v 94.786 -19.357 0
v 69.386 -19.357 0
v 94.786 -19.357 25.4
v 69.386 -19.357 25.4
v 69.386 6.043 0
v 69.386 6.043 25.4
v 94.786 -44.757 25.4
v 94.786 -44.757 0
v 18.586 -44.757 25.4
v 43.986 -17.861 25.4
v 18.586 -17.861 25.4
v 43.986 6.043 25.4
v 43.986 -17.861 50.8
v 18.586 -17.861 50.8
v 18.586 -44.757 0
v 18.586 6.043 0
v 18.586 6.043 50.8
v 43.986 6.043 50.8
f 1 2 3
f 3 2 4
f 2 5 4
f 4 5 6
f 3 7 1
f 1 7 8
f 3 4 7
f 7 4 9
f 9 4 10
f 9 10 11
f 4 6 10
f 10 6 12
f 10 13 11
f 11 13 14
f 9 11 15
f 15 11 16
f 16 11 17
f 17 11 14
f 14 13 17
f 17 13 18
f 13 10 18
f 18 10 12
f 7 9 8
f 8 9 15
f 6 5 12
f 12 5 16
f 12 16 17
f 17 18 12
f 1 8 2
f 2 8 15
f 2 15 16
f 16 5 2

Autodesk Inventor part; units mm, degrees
ref_plane "YZ Plane" through (0, 0, 0) normal (1, 0, 0) x (0, 1, 0)
ref_plane "XZ Plane" through (0, 0, 0) normal (0, 1, 0) x (-1, 0, 0)
ref_plane "XY Plane" through (0, 0, 0) normal (0, 0, 1) x (1, 0, 0)
sketch "Sketch1" plane through (0, 0, 0) normal (0, 0, 1) x (1, 0, 0)
  line L0 (18.5864, 6.043) -> (94.7864, 6.043)
  line L1 (94.7864, 6.043) -> (94.7864, -44.757)
  line L2 (94.7864, -44.757) -> (18.5864, -44.757)
  line L3 (18.5864, -44.757) -> (18.5864, 6.043)
  point P0 (0, 0)
  dimension "d0" = 76.2
  dimension "d1" = 50.8
extrude "Extrusion1" add sketch "Sketch1" along normal blind 50.8
sketch "Sketch2" plane through (94.7864, -44.757, 0) normal (1, 0, 0) x (0, 0, -1)
  line L0 (0, 50.8) -> (-50.8, 50.8) projected
  line L1 (0, 0) -> (-50.8, 0) projected
  line L2 (-50.8, 50.8) -> (-25.4, 50.8)
  line L3 (-25.4, 50.8) -> (-25.4, 0)
  line L4 (-25.4, 0) -> (-50.8, 0)
  line L5 (-50.8, 0) -> (-50.8, 50.8)
  point P0 (0, 44.757)
  dimension "d4" = 25.4
extrude "Extrusion2" cut sketch "Sketch2" against normal blind 50.8
sketch "Sketch3" plane through (18.5864, -44.757, 0) normal (-1, 0, 0) x (0, 0, 1)
  point P0 (0, 44.757)
sketch "Sketch4" plane through (18.5864, -44.757, 0) normal (-1, 0, 0) x (0, 0, 1)
  line L0 (0, 0) -> (50.8, 0) projected
  line L1 (50.8, 0) -> (25.4, 0)
  line L2 (25.4, 0) -> (25.4, 26.8957)
  line L3 (25.4, 26.8957) -> (50.8, 26.8957)
  line L4 (50.8, 26.8957) -> (50.8, 0)
  point P0 (0, 44.757)
  dimension "d7" = 25.4
extrude "Extrusion3" cut sketch "Sketch4" against normal blind 50.8
sketch "Sketch5" plane through (94.7864, -44.757, 25.4) normal (0, 0, 1) x (1, 0, 0)
  line L0 (-50.8, 50.8) -> (0, 50.8) projected
  line L1 (0, 50.8) -> (-25.4, 50.8)
  line L2 (-25.4, 50.8) -> (-25.4, 25.4)
  line L3 (-25.4, 25.4) -> (0, 25.4)
  line L4 (0, 25.4) -> (0, 50.8)
  point P0 (-94.7864, 44.757)
  dimension "d10" = 25.4
  dimension "d11" = 25.4
extrude "Extrusion4" cut sketch "Sketch5" against normal blind 50.8
properties part number "Ied Final"
